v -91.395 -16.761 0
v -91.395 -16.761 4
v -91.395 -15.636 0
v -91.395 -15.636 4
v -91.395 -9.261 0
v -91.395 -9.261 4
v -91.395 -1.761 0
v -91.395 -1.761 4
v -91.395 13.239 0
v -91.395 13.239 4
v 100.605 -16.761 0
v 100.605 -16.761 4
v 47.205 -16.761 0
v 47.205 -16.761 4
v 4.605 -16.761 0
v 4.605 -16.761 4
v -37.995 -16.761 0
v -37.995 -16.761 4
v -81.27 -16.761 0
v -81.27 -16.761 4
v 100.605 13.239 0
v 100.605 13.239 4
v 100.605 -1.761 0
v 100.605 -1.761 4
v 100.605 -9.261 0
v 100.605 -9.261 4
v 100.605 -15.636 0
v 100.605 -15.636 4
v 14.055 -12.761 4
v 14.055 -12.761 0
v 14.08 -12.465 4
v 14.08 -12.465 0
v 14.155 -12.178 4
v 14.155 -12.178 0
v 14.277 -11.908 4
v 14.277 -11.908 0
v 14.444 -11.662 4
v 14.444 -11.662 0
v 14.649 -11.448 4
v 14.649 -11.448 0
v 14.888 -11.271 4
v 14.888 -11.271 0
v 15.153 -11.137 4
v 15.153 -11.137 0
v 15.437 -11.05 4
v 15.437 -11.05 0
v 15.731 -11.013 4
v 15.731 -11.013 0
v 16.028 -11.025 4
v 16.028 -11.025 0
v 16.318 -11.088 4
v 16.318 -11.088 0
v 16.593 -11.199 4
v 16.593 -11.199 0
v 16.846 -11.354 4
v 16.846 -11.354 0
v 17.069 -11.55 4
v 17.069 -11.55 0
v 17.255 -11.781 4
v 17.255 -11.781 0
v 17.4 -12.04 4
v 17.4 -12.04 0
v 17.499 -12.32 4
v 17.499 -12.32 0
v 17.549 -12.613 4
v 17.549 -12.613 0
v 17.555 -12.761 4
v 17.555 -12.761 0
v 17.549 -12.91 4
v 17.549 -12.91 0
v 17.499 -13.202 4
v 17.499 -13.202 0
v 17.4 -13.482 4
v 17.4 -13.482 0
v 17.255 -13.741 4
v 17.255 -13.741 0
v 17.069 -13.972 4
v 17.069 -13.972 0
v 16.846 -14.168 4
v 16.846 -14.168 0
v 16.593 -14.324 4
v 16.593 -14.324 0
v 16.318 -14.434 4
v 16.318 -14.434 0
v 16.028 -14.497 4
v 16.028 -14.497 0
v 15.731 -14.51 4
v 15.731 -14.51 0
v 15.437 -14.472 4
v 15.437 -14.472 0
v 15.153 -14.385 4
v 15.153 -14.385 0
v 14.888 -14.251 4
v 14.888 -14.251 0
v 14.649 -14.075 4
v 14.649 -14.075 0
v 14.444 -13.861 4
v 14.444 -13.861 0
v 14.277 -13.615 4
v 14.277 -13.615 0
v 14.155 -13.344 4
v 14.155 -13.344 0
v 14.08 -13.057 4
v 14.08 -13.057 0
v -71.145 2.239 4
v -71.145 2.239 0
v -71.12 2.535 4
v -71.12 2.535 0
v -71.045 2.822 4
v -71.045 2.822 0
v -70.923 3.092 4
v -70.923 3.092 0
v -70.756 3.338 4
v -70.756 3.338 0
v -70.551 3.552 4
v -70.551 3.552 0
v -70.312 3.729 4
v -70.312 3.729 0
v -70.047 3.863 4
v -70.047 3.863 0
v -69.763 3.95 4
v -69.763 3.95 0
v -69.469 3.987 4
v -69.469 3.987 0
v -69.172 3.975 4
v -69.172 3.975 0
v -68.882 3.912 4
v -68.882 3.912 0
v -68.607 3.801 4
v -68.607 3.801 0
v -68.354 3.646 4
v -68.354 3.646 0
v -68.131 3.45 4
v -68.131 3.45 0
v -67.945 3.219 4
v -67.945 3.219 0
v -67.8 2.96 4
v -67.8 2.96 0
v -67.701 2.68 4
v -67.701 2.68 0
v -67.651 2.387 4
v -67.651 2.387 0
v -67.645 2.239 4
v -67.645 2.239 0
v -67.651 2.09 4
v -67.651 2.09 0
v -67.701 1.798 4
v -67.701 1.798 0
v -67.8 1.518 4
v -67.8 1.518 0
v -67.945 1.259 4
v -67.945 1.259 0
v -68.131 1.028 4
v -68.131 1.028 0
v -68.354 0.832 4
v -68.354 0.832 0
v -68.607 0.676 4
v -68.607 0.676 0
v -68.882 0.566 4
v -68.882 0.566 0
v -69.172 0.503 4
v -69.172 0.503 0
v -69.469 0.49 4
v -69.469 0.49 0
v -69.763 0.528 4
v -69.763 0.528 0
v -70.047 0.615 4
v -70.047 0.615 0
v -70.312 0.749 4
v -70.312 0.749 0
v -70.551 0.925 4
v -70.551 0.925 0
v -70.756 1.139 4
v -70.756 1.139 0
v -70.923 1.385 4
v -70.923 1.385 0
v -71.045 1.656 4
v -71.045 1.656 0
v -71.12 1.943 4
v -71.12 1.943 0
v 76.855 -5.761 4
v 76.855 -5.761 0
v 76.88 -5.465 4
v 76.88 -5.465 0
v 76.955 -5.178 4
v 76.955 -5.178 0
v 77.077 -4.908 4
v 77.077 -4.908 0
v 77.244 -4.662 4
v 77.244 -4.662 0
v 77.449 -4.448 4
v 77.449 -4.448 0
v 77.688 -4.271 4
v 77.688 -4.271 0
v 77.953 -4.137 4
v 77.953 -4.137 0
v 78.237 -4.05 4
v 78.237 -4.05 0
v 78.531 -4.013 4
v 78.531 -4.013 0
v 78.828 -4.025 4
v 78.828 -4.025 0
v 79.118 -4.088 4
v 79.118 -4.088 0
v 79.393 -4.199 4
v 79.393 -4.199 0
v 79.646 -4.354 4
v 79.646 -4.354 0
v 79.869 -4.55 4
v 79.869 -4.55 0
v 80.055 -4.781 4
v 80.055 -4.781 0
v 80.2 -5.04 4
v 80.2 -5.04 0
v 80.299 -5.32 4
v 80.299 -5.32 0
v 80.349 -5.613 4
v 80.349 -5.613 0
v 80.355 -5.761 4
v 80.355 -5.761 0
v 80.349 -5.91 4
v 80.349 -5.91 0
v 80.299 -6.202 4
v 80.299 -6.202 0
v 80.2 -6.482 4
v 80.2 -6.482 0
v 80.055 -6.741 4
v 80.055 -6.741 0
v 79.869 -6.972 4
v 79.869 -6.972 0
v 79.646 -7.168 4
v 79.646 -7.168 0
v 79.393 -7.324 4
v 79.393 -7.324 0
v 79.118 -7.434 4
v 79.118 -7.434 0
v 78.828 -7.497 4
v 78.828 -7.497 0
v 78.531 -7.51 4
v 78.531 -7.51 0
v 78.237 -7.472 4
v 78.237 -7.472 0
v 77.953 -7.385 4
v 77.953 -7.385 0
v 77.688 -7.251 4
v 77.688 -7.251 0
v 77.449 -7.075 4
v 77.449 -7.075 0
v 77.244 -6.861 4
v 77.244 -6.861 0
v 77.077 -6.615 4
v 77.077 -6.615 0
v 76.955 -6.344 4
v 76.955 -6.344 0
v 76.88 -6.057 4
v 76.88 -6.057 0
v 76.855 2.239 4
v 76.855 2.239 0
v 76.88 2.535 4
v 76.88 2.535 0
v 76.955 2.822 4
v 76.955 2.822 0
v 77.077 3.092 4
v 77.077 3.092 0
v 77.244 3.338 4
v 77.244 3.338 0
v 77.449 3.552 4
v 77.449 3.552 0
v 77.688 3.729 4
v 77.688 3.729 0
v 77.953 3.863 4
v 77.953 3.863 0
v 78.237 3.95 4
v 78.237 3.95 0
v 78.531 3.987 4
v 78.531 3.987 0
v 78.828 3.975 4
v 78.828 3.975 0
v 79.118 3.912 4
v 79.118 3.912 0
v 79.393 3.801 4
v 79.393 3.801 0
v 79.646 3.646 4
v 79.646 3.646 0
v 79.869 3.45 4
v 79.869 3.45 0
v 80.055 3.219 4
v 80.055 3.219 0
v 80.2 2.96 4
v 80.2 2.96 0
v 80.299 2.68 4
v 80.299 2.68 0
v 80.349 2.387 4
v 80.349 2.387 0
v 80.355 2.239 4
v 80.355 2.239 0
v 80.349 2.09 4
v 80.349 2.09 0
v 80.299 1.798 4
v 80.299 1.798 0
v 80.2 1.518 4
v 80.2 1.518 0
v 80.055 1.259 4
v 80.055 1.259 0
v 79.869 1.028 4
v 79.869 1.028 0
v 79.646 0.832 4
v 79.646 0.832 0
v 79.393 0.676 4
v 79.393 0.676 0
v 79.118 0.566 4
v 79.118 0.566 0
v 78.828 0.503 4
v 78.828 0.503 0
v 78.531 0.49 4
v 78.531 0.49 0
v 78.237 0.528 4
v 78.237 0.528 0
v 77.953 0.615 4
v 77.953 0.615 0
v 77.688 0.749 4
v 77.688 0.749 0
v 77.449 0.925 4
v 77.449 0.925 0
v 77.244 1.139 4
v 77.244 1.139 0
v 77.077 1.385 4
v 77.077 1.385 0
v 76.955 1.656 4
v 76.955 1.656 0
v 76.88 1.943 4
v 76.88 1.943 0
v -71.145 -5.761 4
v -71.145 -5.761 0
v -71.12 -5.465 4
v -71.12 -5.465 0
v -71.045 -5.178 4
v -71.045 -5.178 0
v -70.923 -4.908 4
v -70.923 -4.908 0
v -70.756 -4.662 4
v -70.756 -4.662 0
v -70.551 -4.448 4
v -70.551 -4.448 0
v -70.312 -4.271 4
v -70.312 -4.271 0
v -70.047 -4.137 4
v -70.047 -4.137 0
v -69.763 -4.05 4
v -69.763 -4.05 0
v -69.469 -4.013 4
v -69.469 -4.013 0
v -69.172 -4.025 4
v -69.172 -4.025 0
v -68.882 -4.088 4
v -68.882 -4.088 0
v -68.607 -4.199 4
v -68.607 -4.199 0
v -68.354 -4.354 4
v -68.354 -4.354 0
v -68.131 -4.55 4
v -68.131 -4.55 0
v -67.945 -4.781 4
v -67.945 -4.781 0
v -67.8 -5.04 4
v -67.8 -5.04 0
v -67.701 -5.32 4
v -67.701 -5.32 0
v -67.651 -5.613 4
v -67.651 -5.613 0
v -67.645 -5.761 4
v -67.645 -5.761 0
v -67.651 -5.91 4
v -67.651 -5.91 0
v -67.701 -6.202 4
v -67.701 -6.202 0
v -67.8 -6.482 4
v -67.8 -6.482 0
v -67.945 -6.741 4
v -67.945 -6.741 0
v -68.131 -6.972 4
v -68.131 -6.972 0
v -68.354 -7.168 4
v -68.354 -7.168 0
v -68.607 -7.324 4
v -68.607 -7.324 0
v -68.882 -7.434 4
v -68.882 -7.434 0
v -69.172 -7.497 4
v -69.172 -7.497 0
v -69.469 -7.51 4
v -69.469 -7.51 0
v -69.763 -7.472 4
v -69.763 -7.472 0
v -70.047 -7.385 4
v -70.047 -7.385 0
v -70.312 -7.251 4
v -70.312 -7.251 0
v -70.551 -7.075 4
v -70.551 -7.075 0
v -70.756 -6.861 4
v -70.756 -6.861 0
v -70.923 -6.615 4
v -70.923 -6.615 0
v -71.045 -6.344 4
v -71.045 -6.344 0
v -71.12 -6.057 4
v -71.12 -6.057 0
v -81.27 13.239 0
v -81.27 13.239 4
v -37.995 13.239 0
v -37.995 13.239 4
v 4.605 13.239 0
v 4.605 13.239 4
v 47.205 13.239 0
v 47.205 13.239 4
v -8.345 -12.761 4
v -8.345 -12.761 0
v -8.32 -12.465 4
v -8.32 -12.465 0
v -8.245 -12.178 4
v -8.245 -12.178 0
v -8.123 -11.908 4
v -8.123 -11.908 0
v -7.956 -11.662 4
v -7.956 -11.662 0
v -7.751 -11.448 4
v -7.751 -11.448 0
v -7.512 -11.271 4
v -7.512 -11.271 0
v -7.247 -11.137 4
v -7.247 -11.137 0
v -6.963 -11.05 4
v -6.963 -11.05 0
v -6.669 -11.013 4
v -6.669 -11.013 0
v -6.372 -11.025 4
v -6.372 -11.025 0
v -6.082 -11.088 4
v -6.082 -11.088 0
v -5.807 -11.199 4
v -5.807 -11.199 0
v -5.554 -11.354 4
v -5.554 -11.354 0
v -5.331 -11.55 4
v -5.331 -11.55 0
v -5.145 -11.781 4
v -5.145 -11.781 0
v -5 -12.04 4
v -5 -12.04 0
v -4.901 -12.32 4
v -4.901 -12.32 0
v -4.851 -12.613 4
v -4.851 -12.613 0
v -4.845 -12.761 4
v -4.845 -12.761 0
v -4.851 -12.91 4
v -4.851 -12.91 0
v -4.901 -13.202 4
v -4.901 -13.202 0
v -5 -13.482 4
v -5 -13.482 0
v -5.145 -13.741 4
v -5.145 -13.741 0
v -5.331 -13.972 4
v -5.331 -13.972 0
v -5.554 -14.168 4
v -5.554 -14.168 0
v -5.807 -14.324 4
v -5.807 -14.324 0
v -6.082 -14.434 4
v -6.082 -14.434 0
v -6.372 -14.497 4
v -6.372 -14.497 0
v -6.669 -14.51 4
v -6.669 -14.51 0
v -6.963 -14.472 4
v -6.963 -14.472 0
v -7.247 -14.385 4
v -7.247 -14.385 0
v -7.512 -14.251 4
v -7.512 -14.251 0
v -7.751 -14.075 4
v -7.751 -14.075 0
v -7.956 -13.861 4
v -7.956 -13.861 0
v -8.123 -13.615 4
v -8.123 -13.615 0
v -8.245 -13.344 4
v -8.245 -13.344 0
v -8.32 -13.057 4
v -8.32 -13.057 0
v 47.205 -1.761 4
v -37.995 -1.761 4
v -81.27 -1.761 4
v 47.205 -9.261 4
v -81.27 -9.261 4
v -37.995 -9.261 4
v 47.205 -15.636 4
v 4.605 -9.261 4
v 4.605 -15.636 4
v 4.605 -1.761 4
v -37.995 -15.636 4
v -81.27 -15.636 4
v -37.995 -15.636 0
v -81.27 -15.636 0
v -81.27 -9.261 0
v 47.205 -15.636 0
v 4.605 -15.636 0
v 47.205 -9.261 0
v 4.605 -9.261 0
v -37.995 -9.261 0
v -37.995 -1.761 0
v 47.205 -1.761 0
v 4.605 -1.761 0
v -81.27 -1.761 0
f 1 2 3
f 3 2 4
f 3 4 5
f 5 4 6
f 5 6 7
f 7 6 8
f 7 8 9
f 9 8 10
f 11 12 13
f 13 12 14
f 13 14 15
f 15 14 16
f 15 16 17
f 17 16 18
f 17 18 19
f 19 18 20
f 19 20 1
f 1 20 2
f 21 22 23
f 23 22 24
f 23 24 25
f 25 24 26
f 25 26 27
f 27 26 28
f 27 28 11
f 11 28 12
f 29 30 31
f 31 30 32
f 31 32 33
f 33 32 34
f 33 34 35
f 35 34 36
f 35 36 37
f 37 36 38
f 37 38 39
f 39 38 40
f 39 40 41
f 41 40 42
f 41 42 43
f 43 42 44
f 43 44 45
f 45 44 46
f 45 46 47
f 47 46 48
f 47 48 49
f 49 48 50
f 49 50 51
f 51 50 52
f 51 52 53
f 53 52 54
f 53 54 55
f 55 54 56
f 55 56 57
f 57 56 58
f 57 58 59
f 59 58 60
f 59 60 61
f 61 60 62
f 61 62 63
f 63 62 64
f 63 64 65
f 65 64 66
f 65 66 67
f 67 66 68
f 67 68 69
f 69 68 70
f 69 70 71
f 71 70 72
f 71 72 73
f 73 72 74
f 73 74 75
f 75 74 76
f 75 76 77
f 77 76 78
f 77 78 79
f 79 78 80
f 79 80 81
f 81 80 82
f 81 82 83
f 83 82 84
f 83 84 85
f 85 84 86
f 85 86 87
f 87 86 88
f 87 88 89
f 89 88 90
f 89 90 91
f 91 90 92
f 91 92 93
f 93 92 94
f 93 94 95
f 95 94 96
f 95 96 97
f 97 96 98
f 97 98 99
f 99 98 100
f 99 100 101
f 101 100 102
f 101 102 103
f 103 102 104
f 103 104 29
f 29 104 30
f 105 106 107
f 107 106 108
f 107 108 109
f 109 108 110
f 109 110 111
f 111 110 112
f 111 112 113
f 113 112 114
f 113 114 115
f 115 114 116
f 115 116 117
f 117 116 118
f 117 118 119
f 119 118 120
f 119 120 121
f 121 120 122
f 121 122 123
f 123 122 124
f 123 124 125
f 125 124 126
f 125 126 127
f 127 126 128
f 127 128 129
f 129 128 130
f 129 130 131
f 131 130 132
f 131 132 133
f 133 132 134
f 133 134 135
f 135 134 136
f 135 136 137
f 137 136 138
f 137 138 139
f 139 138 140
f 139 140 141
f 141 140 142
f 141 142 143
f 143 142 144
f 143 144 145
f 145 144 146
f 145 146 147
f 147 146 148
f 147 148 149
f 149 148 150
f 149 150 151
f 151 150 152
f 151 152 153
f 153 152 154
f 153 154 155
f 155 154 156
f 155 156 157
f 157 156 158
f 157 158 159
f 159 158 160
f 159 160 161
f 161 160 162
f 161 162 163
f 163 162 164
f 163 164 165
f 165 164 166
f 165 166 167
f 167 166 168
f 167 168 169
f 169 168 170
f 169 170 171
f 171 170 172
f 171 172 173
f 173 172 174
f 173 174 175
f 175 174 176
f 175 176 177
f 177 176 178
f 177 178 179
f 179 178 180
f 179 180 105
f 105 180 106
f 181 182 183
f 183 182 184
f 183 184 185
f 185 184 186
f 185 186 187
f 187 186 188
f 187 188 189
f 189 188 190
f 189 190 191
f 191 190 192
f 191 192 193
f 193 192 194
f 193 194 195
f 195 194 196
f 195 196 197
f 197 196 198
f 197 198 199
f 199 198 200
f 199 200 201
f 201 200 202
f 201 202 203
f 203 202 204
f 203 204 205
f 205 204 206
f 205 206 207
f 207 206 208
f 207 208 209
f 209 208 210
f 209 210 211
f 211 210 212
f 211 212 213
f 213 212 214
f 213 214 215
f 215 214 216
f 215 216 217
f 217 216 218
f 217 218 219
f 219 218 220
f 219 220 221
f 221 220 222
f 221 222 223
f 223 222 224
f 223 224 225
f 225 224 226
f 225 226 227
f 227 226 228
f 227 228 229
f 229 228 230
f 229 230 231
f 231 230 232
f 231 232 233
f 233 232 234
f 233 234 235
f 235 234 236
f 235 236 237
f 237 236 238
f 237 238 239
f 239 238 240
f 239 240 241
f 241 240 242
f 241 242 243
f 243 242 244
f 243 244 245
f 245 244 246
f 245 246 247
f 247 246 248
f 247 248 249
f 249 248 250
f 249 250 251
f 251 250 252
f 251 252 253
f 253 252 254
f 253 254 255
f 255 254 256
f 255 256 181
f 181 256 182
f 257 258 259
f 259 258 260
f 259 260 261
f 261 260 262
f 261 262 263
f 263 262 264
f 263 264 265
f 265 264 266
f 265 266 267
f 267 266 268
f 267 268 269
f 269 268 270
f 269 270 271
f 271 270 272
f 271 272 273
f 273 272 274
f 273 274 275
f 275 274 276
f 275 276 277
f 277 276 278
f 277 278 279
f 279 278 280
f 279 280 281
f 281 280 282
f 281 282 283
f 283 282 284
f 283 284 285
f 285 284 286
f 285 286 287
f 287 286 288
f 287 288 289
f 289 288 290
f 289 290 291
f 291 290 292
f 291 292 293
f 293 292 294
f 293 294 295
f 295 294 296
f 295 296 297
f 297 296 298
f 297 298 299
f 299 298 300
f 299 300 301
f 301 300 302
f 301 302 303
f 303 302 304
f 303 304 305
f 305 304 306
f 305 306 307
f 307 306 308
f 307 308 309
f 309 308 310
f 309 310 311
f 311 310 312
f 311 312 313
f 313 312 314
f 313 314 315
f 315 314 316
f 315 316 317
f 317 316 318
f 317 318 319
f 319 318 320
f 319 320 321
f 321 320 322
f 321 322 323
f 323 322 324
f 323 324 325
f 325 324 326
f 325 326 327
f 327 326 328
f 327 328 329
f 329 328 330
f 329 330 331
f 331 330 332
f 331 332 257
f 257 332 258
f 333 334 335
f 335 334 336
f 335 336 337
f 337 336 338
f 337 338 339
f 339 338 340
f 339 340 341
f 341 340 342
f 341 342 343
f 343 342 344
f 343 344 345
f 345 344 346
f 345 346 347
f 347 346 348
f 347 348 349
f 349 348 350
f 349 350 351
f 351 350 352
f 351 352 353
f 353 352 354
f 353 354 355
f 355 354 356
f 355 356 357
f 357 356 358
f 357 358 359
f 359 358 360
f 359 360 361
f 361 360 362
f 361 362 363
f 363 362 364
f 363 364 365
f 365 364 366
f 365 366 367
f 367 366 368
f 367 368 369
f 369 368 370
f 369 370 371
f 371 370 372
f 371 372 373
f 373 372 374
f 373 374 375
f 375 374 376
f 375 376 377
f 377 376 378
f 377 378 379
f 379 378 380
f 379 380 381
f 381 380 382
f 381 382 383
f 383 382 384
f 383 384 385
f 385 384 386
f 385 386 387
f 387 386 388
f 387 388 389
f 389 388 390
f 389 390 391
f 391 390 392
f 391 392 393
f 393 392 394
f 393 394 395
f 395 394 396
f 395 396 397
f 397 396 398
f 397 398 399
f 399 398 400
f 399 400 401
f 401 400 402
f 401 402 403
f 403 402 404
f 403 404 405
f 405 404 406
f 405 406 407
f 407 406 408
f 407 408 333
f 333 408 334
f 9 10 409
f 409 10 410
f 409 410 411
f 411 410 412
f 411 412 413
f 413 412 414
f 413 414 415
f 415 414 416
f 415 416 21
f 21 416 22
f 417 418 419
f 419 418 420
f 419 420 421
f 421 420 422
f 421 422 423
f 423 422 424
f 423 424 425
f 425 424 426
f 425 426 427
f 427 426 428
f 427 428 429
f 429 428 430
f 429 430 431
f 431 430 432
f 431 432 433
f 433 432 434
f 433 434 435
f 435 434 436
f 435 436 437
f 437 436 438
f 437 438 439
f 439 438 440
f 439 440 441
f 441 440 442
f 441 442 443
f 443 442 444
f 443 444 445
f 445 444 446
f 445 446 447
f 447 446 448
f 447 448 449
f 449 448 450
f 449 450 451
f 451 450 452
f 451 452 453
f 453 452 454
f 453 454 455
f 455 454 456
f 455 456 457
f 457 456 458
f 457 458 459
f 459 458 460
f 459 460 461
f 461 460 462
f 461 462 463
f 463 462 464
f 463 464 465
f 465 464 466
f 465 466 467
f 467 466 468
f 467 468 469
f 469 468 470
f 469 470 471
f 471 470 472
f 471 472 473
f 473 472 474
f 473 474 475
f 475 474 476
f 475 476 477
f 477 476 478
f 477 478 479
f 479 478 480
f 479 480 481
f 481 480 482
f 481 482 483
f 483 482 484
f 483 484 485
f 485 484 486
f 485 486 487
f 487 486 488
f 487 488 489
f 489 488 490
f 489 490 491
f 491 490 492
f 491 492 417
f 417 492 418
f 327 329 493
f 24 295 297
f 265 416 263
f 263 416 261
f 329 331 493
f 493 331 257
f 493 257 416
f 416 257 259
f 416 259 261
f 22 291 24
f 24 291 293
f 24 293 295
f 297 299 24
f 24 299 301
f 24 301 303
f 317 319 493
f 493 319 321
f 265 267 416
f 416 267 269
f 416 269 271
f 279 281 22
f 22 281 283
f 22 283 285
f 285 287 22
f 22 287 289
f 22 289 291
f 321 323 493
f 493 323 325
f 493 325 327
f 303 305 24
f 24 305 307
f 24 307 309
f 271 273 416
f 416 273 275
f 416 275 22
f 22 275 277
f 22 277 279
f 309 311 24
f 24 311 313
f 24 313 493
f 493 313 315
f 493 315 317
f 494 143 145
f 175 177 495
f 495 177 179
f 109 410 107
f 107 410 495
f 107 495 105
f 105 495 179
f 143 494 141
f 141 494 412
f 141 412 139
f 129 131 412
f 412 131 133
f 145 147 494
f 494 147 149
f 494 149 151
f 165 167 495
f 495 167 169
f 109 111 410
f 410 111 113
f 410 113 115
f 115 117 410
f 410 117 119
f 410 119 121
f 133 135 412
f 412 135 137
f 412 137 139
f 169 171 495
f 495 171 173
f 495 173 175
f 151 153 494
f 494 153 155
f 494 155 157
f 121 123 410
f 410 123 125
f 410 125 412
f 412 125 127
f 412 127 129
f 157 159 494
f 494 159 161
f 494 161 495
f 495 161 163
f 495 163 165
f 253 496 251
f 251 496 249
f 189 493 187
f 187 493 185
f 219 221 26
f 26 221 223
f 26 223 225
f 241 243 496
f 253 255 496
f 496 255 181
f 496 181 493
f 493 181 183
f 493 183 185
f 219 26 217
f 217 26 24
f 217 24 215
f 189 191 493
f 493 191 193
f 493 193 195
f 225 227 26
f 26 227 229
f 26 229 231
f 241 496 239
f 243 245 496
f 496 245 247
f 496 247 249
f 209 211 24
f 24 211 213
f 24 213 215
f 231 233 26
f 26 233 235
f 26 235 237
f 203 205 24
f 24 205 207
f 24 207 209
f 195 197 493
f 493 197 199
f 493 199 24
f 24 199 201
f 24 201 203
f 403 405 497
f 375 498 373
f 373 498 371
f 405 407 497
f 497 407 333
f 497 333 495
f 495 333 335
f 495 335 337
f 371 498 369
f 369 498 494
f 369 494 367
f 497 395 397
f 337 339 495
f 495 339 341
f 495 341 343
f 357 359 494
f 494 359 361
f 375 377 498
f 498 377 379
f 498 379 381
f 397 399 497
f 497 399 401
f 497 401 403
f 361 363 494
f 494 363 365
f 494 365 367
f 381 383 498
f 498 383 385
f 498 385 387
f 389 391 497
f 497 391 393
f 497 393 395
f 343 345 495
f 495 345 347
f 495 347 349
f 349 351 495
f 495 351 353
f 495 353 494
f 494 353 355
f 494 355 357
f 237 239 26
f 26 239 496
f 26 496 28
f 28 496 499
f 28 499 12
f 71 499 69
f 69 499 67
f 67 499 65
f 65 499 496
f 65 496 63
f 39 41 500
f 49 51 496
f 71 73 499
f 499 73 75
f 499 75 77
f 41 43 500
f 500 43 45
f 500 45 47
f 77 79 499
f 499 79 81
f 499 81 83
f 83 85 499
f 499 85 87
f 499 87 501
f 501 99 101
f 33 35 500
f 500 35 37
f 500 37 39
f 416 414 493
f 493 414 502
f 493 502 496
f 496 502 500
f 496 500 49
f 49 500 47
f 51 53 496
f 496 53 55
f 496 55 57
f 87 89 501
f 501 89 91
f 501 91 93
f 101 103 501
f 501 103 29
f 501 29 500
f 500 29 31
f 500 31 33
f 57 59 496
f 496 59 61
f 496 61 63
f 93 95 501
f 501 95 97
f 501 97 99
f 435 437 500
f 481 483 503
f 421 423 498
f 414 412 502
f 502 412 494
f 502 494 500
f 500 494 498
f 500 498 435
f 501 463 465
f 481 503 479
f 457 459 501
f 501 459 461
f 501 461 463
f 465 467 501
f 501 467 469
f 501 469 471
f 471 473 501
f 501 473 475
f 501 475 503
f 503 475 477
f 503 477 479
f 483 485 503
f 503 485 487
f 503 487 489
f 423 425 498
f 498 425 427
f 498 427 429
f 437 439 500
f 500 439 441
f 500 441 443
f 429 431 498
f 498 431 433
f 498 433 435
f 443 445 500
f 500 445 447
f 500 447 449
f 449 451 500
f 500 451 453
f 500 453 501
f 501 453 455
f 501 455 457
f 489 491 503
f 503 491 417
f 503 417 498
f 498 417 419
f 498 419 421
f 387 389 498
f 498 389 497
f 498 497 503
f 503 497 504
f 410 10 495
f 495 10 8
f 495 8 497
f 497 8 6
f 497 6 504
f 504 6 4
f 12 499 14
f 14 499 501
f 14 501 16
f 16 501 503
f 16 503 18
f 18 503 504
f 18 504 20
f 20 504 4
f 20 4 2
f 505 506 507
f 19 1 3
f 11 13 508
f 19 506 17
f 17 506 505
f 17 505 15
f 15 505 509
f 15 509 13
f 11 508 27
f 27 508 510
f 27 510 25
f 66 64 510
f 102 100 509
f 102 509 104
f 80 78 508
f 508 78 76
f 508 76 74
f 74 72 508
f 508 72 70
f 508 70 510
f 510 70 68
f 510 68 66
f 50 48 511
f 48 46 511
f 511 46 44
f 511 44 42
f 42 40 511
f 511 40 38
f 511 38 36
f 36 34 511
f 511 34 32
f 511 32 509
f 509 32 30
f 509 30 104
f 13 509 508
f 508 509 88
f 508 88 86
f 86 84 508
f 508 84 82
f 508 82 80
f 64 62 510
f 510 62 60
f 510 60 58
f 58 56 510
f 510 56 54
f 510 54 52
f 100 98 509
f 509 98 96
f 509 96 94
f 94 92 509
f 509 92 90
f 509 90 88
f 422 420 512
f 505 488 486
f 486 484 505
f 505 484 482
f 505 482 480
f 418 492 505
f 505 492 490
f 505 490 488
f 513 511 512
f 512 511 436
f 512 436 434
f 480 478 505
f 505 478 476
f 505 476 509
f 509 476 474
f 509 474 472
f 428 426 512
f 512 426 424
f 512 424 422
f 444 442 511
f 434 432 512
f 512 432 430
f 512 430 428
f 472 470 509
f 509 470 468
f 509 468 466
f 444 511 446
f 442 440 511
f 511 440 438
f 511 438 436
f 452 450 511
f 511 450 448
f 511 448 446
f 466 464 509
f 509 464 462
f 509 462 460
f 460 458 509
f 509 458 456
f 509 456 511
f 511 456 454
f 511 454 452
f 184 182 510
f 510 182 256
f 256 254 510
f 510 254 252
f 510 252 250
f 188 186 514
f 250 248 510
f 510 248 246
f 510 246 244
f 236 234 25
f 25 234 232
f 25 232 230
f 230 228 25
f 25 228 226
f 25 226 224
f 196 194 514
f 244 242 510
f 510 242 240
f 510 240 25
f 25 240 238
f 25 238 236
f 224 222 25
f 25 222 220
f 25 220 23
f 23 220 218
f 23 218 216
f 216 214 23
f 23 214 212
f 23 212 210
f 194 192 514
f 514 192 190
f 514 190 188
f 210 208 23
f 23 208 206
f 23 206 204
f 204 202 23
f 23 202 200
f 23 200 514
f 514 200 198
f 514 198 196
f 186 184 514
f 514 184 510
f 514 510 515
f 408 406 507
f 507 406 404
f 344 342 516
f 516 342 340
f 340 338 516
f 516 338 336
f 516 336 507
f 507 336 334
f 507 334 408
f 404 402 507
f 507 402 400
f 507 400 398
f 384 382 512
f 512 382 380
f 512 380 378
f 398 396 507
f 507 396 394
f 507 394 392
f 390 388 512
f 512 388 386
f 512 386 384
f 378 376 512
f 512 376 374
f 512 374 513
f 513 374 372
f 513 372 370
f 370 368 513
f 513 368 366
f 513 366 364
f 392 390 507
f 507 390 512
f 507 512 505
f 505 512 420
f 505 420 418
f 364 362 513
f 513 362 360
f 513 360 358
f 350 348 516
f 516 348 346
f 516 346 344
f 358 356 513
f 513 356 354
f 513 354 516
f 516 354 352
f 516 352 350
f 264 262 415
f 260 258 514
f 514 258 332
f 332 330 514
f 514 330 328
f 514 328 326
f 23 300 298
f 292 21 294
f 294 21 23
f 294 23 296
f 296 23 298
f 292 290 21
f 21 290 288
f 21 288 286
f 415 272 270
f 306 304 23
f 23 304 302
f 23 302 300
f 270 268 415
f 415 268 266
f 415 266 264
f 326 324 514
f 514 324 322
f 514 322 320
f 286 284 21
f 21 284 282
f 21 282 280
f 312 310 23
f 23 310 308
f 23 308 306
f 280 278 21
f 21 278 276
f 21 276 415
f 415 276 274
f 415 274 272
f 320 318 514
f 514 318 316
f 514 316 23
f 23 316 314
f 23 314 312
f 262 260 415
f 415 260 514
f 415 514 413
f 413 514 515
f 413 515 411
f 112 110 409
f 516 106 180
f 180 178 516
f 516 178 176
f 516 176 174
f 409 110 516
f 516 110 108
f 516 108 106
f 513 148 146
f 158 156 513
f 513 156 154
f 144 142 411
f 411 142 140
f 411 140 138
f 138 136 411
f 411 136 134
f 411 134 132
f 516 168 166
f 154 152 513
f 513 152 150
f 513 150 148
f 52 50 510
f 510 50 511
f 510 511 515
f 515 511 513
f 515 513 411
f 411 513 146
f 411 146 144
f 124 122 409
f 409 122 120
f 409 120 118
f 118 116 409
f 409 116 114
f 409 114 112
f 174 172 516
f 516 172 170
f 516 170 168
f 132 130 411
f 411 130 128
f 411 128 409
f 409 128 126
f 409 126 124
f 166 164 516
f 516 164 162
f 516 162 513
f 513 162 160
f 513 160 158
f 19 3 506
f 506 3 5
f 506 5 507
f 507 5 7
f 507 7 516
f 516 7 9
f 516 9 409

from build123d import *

# Parameters (mm, degrees)
SKETCH_1_R      = 1.75
SKETCH_1_W      = 29
SKETCH_1_H      = 7
EXTRUDE_2_DEPTH = 4


with BuildPart() as part:
    # 스케치1 → 보스-돌출2 (new body)
    # profile 1 of 2: a face of its own
    with BuildSketch(Plane.XY):
        Polygon((-91.394765949, 13.238815007), (-91.394765949, -16.761184993), (-9.894765949, -16.761184993), (-9.894765949, -9.761184993), (19.105234051, -9.761184993), (19.105234051, -16.761184993), (100.605234051, -16.761184993), (100.605234051, 13.238815007), align=None)
        with Locations((-69.394765949, -5.761184993)):
            Circle(SKETCH_1_R, mode=Mode.SUBTRACT)
        with Locations((78.605234051, -5.761184993)):
            Circle(SKETCH_1_R, mode=Mode.SUBTRACT)
        with Locations((-69.394765949, 2.238815007)):
            Circle(SKETCH_1_R, mode=Mode.SUBTRACT)
        with Locations((78.605234051, 2.238815007)):
            Circle(SKETCH_1_R, mode=Mode.SUBTRACT)
    # profile 2 of 2: a face of its own
    with BuildSketch(Plane.XY):
        with Locations((4.605234051, -13.261184993)):
            Rectangle(SKETCH_1_W, SKETCH_1_H)
        with Locations((-6.594765949, -12.761184993)):
            Circle(SKETCH_1_R, mode=Mode.SUBTRACT)
        with Locations((15.805234051, -12.761184993)):
            Circle(SKETCH_1_R, mode=Mode.SUBTRACT)
    extrude(amount=EXTRUDE_2_DEPTH)


solid = part.part
